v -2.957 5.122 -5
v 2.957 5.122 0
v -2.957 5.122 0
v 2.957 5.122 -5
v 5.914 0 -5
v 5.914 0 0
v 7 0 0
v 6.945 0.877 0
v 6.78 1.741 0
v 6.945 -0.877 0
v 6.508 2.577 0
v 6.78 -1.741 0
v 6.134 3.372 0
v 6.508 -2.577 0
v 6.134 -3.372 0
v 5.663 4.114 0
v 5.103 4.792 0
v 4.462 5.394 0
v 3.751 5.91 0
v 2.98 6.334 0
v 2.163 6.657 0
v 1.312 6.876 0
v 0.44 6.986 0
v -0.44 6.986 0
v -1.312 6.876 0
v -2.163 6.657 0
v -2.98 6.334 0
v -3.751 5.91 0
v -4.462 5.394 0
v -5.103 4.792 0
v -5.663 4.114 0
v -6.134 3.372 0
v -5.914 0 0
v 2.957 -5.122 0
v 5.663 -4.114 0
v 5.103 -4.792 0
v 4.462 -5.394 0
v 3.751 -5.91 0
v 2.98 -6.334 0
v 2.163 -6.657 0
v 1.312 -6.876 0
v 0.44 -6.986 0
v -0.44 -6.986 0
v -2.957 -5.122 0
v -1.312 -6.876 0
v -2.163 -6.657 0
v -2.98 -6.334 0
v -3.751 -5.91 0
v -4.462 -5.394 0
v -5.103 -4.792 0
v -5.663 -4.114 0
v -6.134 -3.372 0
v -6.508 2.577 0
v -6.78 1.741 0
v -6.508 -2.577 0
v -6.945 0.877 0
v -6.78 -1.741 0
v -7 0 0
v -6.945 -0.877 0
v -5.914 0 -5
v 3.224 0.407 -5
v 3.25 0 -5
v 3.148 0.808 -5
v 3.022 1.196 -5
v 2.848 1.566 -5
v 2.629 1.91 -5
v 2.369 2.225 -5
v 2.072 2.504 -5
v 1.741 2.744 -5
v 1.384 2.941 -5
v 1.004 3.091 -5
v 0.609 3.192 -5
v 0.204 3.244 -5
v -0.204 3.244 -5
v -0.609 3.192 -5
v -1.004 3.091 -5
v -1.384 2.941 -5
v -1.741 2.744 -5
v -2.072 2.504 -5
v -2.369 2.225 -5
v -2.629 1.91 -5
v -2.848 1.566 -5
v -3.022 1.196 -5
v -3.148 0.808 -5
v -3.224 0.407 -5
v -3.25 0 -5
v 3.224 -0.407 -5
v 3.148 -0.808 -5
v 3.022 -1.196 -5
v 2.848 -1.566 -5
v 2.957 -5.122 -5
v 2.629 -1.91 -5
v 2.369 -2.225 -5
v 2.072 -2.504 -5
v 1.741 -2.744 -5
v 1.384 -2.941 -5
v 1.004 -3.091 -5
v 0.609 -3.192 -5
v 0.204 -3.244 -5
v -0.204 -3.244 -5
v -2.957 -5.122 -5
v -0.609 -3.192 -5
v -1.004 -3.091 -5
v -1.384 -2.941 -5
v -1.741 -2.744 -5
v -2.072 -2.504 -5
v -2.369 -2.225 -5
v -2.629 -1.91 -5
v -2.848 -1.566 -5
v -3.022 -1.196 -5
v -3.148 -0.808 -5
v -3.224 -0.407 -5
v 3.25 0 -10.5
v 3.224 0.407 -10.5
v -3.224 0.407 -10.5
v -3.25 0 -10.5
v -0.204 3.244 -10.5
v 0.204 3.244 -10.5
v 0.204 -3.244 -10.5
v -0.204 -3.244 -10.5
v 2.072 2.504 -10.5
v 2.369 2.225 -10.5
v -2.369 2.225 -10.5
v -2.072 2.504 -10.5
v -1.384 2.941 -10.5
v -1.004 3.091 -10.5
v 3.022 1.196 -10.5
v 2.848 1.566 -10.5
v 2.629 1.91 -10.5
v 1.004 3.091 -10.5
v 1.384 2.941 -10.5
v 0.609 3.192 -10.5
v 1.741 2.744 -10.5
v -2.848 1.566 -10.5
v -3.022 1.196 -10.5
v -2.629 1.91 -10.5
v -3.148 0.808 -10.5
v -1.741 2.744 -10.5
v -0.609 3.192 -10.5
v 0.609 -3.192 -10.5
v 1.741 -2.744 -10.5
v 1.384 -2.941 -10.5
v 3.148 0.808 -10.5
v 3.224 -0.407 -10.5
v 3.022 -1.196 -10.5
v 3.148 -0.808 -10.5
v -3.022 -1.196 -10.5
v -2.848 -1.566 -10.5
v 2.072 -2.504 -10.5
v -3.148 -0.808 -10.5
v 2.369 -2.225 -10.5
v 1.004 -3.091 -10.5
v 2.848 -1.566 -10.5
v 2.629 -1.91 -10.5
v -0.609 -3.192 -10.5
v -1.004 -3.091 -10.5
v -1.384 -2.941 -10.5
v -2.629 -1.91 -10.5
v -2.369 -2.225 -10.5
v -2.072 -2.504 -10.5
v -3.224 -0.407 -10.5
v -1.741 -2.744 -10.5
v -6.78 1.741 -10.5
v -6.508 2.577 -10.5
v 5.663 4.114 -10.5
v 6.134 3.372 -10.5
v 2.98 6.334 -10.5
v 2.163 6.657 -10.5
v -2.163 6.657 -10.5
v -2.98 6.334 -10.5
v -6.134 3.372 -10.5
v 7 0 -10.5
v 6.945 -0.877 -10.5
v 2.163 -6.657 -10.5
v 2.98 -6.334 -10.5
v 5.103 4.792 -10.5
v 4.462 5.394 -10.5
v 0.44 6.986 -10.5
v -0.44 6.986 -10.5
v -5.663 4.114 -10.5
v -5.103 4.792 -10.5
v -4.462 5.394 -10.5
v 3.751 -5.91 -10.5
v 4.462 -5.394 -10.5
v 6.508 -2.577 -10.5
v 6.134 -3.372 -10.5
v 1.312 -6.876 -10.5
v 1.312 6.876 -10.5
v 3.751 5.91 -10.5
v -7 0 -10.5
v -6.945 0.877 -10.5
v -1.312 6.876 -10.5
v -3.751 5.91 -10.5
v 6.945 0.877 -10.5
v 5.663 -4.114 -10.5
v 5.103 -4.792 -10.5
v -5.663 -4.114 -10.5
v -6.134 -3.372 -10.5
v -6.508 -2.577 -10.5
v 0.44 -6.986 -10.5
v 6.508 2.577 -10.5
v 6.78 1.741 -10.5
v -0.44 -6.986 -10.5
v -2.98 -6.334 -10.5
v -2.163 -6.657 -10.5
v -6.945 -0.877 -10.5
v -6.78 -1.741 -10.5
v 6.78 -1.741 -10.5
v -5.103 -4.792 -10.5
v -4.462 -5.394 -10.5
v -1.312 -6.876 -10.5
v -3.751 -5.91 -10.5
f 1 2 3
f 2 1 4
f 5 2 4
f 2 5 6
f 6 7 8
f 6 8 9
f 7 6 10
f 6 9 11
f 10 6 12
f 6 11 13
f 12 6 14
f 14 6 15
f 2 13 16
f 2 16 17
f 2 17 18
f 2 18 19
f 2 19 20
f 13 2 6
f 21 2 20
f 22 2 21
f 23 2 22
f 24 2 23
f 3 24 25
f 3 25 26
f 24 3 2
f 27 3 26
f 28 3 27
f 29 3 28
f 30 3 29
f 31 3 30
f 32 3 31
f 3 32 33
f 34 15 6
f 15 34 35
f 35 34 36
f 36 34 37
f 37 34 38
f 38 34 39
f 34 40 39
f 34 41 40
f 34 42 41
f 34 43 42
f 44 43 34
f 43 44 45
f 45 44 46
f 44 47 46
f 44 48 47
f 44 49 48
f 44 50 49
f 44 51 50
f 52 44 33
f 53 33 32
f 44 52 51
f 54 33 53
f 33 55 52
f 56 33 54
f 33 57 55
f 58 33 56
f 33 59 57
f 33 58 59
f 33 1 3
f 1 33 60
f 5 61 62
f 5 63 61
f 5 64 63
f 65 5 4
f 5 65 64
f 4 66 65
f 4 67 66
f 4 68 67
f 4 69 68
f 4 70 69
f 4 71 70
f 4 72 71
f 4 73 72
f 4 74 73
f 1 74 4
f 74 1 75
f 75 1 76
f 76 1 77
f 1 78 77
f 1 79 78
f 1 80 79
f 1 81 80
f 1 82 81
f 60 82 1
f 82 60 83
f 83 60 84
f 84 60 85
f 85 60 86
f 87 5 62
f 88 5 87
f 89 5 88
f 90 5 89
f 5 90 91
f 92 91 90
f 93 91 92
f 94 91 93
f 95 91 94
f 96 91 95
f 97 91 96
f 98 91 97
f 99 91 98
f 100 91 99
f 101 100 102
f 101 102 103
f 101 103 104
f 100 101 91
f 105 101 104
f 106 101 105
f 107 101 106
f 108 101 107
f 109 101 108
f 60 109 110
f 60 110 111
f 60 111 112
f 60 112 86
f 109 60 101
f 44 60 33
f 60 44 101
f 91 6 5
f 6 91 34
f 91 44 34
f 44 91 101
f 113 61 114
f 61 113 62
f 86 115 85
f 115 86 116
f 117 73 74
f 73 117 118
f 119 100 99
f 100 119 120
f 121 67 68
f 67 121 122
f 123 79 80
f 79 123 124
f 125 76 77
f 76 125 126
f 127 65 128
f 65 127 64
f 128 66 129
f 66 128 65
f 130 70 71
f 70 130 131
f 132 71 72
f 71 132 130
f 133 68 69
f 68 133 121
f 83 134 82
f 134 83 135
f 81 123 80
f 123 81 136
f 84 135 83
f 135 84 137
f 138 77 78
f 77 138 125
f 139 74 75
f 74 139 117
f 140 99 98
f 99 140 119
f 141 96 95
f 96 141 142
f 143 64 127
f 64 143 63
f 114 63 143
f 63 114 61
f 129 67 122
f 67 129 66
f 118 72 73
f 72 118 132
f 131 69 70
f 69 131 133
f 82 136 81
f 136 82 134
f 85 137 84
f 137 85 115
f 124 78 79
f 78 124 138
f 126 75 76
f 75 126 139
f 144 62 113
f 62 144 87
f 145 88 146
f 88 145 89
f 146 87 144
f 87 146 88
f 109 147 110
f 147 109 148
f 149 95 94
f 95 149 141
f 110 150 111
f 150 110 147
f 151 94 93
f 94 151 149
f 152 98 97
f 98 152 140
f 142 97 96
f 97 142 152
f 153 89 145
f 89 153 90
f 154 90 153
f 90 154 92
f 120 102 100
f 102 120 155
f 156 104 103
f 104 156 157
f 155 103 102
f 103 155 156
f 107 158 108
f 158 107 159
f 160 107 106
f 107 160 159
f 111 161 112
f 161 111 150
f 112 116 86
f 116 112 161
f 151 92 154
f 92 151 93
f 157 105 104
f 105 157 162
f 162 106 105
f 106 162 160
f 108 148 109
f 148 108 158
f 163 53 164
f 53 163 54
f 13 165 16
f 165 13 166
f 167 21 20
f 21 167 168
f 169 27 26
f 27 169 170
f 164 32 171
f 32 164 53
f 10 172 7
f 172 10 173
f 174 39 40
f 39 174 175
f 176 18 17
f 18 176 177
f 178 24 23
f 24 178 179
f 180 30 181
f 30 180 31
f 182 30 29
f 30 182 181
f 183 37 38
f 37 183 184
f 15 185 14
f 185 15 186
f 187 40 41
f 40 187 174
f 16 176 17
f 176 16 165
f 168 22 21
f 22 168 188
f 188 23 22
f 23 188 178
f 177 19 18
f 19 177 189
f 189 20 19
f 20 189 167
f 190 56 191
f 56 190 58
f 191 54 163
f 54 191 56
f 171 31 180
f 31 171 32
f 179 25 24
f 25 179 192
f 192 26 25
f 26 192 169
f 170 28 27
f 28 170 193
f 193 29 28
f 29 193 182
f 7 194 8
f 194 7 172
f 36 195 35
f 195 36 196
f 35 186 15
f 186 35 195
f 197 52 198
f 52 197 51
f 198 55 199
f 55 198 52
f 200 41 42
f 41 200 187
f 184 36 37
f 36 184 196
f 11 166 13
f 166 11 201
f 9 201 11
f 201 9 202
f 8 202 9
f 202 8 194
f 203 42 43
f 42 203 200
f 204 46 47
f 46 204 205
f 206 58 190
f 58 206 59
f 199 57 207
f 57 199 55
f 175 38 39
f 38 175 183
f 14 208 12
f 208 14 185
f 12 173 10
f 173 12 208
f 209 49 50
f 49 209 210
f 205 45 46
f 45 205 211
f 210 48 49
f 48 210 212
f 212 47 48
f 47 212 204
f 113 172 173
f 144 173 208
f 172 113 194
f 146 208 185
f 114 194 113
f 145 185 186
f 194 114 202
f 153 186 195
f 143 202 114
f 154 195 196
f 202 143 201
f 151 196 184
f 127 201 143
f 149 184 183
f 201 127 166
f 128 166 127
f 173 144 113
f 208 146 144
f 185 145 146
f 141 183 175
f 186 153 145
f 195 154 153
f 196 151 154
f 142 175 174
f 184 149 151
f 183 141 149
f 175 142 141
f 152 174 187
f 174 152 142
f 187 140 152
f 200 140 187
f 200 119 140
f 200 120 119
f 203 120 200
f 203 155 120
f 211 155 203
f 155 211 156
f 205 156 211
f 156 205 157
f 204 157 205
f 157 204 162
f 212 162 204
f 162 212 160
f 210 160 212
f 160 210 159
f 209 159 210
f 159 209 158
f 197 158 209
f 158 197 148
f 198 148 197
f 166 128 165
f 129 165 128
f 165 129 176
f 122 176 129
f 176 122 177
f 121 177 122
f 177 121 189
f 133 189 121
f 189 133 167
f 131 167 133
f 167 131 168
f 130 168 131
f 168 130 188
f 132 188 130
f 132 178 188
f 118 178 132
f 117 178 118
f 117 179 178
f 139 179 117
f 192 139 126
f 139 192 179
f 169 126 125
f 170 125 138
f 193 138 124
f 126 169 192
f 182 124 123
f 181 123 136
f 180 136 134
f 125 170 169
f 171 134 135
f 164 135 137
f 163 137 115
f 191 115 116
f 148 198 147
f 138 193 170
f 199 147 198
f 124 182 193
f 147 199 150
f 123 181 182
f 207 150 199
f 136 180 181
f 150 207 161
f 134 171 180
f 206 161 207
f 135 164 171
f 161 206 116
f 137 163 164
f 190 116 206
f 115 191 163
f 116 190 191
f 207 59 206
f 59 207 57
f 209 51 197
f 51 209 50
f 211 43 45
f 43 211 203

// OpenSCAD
$fn = 50;

difference() {
	union() {
		translate(v = [0, 0, -10.5]) {
			cylinder(h = 10.5, r = 7.0);
		}
	}
	union() {
		translate(v = [0, 0, 0]) {
			rotate(a = [0, 0, 0]) {
				difference() {
					union() {
						translate(v = [0, 0, -5]) {
							linear_extrude(height = 5) {
								polygon(points = [[5.914249999999999, 0.0], [2.957125, 5.1218907443321156], [-2.9571249999999982, 5.1218907443321156], [-5.914249999999999, 7.242867331857232e-16], [-2.9571250000000022, -5.121890744332115], [2.9571249999999956, -5.121890744332118]]);
							}
						}
					}
					union();
				}
			}
		}
		#translate(v = [0, 0, -100.0]) {
			cylinder(h = 200, r = 3.25);
		}
	}
}
